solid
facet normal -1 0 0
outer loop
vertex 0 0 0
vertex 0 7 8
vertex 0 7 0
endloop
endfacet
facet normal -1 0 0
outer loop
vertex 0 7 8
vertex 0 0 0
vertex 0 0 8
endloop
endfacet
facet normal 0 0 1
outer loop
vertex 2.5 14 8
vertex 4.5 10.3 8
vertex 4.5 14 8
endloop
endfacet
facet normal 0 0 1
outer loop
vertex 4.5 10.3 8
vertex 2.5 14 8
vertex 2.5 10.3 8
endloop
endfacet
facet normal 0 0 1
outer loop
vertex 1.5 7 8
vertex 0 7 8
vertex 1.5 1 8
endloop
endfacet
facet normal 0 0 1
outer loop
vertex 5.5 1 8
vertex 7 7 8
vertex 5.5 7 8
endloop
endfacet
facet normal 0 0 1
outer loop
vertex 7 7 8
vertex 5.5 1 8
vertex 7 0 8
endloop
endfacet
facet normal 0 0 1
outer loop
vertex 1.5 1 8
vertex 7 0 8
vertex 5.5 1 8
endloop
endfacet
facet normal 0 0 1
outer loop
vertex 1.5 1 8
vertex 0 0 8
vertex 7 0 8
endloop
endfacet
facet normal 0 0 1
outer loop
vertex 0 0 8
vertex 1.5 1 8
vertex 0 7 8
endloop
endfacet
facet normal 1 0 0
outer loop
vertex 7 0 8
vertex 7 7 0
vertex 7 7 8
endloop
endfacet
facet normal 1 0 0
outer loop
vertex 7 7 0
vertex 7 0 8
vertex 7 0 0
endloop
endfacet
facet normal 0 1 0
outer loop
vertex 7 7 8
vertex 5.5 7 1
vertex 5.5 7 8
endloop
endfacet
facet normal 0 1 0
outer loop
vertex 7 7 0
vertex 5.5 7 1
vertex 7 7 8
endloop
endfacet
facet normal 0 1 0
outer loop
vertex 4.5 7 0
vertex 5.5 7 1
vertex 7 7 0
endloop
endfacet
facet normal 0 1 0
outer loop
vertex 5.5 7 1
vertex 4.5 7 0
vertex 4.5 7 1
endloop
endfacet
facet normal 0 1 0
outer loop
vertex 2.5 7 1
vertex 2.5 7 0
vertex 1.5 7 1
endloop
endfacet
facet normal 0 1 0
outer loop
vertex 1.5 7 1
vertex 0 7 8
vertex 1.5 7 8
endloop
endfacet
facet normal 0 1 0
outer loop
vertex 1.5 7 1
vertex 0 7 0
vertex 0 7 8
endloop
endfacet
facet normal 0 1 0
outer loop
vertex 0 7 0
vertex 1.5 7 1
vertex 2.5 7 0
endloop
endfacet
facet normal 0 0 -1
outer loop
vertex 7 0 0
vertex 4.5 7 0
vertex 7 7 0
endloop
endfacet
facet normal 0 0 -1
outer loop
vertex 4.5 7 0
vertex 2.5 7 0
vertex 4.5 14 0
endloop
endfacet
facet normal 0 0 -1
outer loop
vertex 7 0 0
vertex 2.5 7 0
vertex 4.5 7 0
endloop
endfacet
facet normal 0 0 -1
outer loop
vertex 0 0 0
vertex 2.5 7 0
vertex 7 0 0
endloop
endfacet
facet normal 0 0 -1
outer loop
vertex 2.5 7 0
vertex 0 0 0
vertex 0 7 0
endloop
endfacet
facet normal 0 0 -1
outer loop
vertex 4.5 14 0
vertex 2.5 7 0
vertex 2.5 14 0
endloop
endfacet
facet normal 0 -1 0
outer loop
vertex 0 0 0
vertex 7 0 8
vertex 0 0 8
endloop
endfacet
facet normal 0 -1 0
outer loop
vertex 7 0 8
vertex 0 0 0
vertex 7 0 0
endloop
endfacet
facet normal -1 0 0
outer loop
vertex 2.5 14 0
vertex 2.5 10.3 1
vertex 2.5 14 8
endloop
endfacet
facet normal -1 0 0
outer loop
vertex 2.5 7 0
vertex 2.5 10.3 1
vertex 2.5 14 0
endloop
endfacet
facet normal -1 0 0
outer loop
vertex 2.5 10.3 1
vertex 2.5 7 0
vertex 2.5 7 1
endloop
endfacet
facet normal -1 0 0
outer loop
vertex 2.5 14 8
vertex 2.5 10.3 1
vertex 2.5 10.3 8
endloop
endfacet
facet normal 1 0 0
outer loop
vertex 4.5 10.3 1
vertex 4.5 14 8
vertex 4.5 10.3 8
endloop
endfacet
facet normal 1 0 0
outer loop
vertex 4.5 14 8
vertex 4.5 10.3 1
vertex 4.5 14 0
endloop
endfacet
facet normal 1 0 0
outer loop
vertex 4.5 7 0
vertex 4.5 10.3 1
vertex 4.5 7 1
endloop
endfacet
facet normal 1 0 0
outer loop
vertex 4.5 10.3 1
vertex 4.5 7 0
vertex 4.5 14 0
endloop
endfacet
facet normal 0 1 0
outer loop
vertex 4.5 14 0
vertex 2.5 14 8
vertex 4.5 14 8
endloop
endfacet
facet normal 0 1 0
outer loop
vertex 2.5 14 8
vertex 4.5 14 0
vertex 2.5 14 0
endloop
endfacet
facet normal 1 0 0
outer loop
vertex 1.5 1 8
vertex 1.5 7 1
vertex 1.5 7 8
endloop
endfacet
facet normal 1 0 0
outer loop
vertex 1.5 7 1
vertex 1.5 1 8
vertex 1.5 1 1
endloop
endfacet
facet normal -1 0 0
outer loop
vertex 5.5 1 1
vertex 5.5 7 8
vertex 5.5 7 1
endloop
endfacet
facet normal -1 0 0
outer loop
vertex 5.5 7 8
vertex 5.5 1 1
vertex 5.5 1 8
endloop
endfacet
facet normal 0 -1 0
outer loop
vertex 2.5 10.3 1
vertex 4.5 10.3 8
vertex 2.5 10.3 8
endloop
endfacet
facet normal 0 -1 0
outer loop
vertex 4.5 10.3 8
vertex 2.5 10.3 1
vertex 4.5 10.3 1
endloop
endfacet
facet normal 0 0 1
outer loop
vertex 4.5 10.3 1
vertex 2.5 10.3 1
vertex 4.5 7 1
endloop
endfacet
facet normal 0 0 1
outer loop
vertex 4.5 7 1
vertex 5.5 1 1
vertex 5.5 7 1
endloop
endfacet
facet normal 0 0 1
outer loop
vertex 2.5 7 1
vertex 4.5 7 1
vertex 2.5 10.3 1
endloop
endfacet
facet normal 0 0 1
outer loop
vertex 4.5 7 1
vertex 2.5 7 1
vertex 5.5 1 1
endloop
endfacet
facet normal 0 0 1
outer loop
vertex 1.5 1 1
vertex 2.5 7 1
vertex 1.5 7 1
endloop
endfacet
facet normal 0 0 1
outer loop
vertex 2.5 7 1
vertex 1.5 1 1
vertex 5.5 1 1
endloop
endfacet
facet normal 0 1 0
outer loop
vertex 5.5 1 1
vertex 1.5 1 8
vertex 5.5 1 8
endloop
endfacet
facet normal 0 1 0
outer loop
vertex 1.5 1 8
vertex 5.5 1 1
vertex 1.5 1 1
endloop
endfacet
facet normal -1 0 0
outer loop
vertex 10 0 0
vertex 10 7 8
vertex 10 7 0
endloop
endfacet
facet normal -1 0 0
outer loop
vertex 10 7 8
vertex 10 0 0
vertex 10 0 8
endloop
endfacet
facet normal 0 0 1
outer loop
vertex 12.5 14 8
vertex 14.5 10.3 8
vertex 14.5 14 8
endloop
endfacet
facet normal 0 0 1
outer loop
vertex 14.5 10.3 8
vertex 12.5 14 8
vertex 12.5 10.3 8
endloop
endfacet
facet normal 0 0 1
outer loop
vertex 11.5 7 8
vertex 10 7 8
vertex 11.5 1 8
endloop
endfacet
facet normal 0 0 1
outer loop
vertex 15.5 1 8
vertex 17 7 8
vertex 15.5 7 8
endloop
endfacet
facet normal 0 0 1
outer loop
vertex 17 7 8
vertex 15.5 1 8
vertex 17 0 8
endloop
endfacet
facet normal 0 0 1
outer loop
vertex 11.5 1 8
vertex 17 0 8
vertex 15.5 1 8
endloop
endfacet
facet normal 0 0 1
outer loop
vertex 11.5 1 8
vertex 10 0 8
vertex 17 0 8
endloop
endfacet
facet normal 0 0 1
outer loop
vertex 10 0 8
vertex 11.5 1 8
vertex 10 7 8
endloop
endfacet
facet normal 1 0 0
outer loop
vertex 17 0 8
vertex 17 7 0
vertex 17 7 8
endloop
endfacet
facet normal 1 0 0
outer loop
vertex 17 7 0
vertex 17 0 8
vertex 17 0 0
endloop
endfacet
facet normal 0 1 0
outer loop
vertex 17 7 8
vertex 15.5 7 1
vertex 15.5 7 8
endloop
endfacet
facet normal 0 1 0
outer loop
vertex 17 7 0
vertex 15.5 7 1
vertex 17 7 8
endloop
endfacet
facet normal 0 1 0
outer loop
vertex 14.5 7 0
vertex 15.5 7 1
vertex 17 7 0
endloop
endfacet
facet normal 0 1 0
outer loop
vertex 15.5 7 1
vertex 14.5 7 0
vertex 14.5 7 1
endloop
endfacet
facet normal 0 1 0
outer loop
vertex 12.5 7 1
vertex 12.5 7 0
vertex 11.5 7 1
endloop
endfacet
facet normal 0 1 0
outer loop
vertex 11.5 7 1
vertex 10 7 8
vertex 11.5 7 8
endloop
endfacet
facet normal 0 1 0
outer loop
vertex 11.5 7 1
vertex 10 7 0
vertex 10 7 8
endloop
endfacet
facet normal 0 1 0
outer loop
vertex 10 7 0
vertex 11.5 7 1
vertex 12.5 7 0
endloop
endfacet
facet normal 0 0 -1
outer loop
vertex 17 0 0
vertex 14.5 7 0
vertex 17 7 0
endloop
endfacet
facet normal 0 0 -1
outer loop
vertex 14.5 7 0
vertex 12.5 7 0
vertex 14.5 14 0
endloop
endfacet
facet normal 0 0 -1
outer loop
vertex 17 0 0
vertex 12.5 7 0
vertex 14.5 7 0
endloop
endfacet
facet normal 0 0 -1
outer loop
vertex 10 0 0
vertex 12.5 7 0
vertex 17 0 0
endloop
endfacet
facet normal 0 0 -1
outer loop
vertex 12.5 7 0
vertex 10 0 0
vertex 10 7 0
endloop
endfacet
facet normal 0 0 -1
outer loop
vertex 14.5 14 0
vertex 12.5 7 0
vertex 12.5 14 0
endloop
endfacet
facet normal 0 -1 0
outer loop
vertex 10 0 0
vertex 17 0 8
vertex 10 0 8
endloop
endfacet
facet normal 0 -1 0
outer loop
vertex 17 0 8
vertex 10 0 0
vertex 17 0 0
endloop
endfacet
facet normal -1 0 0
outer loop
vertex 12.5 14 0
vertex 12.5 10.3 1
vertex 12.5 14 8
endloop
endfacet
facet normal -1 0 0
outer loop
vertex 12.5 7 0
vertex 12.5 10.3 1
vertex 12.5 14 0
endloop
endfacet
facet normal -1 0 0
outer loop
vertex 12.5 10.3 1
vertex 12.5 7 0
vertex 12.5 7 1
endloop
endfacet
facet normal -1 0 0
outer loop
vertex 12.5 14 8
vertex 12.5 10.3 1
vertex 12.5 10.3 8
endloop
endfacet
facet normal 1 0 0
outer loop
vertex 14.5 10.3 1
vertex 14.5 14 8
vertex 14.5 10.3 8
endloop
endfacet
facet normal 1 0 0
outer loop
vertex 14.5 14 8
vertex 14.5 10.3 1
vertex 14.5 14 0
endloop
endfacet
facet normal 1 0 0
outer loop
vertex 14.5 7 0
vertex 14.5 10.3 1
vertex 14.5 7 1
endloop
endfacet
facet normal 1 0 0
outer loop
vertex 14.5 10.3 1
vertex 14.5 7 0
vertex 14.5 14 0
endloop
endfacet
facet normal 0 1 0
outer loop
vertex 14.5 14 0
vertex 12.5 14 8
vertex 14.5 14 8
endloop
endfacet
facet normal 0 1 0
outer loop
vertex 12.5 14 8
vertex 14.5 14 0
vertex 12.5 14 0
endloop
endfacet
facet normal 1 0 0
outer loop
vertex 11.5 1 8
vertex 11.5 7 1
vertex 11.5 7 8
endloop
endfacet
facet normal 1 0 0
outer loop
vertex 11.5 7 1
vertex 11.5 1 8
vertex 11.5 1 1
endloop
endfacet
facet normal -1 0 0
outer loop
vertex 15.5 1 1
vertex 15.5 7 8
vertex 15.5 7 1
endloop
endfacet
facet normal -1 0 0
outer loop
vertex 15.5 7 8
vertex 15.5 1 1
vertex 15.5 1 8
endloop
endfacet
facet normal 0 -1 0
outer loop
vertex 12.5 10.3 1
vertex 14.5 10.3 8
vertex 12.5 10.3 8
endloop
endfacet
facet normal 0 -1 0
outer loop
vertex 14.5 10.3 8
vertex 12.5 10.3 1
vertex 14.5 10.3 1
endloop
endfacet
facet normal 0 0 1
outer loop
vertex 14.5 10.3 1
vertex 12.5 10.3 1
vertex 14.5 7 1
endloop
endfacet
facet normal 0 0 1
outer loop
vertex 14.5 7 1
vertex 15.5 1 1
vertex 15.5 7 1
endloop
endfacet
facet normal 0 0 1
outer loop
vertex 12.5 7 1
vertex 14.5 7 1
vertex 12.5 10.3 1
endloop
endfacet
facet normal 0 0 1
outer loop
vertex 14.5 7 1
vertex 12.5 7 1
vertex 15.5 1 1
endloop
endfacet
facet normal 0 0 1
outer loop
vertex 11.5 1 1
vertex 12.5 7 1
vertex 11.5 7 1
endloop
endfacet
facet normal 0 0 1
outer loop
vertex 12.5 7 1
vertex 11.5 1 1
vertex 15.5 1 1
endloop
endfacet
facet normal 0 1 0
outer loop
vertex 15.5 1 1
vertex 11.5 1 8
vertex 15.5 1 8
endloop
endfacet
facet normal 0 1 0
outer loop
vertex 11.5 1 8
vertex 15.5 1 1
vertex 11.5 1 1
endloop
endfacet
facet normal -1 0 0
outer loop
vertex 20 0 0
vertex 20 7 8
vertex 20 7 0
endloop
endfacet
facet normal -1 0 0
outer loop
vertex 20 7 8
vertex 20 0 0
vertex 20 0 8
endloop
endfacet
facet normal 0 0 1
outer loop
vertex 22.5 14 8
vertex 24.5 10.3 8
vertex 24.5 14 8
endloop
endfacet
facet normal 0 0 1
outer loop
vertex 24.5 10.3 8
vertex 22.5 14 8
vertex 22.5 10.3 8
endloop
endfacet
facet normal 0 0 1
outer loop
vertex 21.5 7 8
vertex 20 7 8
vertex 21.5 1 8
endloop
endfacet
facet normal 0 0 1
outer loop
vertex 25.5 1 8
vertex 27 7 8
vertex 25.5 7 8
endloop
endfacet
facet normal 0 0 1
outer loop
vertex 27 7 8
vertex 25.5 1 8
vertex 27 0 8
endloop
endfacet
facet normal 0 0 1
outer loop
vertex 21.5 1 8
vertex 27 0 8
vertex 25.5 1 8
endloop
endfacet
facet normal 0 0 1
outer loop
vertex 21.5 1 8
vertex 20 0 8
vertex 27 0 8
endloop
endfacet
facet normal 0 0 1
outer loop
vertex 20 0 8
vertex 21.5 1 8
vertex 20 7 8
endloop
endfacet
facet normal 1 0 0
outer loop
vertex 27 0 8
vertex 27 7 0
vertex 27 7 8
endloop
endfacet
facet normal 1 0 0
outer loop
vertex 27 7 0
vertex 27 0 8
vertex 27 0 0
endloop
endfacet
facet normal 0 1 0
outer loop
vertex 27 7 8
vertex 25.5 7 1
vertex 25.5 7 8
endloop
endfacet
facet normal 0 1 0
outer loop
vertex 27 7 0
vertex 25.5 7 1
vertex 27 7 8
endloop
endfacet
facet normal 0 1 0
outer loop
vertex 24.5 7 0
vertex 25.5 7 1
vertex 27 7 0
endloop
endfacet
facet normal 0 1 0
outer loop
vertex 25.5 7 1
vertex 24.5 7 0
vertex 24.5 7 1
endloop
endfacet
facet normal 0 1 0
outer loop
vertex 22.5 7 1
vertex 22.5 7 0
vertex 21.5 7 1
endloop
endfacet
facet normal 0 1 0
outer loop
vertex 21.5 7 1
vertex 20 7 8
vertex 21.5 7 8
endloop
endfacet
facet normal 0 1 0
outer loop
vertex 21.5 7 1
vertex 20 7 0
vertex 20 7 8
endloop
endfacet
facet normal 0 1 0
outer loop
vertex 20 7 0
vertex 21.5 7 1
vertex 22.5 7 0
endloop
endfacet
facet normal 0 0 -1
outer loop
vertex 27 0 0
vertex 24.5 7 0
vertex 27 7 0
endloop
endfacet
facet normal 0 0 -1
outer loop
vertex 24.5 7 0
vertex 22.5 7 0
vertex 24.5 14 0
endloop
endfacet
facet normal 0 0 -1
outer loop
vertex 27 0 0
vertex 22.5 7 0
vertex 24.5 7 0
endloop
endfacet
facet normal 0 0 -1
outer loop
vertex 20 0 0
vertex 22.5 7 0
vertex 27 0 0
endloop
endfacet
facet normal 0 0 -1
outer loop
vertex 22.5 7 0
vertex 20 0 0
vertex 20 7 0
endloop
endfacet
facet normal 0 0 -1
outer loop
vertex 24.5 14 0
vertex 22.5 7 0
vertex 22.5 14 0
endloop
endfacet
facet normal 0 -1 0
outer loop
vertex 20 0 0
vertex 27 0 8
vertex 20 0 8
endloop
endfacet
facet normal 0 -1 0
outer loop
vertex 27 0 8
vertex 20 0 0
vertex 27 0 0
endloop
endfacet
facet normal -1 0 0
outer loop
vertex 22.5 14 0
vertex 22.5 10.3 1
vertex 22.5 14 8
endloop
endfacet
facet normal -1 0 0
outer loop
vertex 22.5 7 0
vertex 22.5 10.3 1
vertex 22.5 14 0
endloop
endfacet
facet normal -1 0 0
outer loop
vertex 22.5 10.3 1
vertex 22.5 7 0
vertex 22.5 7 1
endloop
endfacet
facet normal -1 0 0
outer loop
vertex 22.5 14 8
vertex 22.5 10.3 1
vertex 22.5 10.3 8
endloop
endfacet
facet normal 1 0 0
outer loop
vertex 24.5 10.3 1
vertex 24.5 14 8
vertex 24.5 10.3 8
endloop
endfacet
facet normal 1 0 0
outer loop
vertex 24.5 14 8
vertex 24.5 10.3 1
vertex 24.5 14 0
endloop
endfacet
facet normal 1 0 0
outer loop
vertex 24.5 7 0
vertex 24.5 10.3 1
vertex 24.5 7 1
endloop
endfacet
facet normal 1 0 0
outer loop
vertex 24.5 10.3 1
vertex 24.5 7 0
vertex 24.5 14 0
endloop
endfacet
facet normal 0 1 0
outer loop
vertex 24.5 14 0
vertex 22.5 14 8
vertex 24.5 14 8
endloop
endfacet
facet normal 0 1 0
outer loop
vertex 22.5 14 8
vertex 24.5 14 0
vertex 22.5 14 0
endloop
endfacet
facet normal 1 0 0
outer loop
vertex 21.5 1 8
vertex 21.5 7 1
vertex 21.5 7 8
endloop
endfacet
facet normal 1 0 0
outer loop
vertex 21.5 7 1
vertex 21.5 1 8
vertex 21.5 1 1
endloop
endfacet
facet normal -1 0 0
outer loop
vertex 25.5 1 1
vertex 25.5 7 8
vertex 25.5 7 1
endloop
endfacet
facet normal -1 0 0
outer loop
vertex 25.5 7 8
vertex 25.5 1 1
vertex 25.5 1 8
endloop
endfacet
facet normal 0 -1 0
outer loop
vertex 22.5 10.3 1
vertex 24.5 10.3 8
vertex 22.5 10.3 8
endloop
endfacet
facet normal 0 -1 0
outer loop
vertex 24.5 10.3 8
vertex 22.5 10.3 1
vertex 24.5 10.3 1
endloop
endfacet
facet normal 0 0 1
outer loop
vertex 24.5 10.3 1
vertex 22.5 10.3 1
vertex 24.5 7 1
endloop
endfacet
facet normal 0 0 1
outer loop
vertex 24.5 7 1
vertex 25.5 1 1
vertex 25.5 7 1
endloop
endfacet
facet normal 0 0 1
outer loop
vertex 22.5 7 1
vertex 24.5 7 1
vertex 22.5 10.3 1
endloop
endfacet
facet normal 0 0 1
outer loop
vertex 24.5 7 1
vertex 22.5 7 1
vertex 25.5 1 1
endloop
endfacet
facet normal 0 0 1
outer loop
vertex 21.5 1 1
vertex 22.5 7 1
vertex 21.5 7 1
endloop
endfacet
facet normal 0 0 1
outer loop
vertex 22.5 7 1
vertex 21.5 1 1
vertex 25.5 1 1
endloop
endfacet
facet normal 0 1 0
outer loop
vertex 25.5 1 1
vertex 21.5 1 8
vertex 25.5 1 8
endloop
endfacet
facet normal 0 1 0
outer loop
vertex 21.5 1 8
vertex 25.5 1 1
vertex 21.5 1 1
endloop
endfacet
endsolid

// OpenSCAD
module OpenSCAD_Model() {
	polyhedron(
		points=[
			[0.0, 0.0, 0.0],
			[0.0, 7.0, 8.0],
			[0.0, 7.0, 0.0],
			[0.0, 0.0, 8.0],
			[2.5, 14.0, 8.0],
			[4.5, 10.3, 8.0],
			[4.5, 14.0, 8.0],
			[2.5, 10.3, 8.0],
			[1.5, 7.0, 8.0],
			[1.5, 1.0, 8.0],
			[5.5, 1.0, 8.0],
			[7.0, 7.0, 8.0],
			[5.5, 7.0, 8.0],
			[7.0, 0.0, 8.0],
			[7.0, 7.0, 0.0],
			[7.0, 0.0, 0.0],
			[5.5, 7.0, 1.0],
			[4.5, 7.0, 0.0],
			[4.5, 7.0, 1.0],
			[2.5, 7.0, 1.0],
			[2.5, 7.0, 0.0],
			[1.5, 7.0, 1.0],
			[4.5, 14.0, 0.0],
			[2.5, 14.0, 0.0],
			[2.5, 10.3, 1.0],
			[4.5, 10.3, 1.0],
			[1.5, 1.0, 1.0],
			[5.5, 1.0, 1.0],
			[10.0, 0.0, 0.0],
			[10.0, 7.0, 8.0],
			[10.0, 7.0, 0.0],
			[10.0, 0.0, 8.0],
			[12.5, 14.0, 8.0],
			[14.5, 10.3, 8.0],
			[14.5, 14.0, 8.0],
			[12.5, 10.3, 8.0],
			[11.5, 7.0, 8.0],
			[11.5, 1.0, 8.0],
			[15.5, 1.0, 8.0],
			[17.0, 7.0, 8.0],
			[15.5, 7.0, 8.0],
			[17.0, 0.0, 8.0],
			[17.0, 7.0, 0.0],
			[17.0, 0.0, 0.0],
			[15.5, 7.0, 1.0],
			[14.5, 7.0, 0.0],
			[14.5, 7.0, 1.0],
			[12.5, 7.0, 1.0],
			[12.5, 7.0, 0.0],
			[11.5, 7.0, 1.0],
			[14.5, 14.0, 0.0],
			[12.5, 14.0, 0.0],
			[12.5, 10.3, 1.0],
			[14.5, 10.3, 1.0],
			[11.5, 1.0, 1.0],
			[15.5, 1.0, 1.0],
			[20.0, 0.0, 0.0],
			[20.0, 7.0, 8.0],
			[20.0, 7.0, 0.0],
			[20.0, 0.0, 8.0],
			[22.5, 14.0, 8.0],
			[24.5, 10.3, 8.0],
			[24.5, 14.0, 8.0],
			[22.5, 10.3, 8.0],
			[21.5, 7.0, 8.0],
			[21.5, 1.0, 8.0],
			[25.5, 1.0, 8.0],
			[27.0, 7.0, 8.0],
			[25.5, 7.0, 8.0],
			[27.0, 0.0, 8.0],
			[27.0, 7.0, 0.0],
			[27.0, 0.0, 0.0],
			[25.5, 7.0, 1.0],
			[24.5, 7.0, 0.0],
			[24.5, 7.0, 1.0],
			[22.5, 7.0, 1.0],
			[22.5, 7.0, 0.0],
			[21.5, 7.0, 1.0],
			[24.5, 14.0, 0.0],
			[22.5, 14.0, 0.0],
			[22.5, 10.3, 1.0],
			[24.5, 10.3, 1.0],
			[21.5, 1.0, 1.0],
			[25.5, 1.0, 1.0]
		],
		faces=[
			[0, 2, 1],
			[1, 3, 0],
			[4, 6, 5],
			[5, 7, 4],
			[8, 9, 1],
			[10, 12, 11],
			[11, 13, 10],
			[9, 10, 13],
			[9, 13, 3],
			[3, 1, 9],
			[13, 11, 14],
			[14, 15, 13],
			[11, 12, 16],
			[14, 11, 16],
			[17, 14, 16],
			[16, 18, 17],
			[19, 21, 20],
			[21, 8, 1],
			[21, 1, 2],
			[2, 20, 21],
			[15, 14, 17],
			[17, 22, 20],
			[15, 17, 20],
			[0, 15, 20],
			[20, 2, 0],
			[22, 23, 20],
			[0, 3, 13],
			[13, 15, 0],
			[23, 4, 24],
			[20, 23, 24],
			[24, 19, 20],
			[4, 7, 24],
			[25, 5, 6],
			[6, 22, 25],
			[17, 18, 25],
			[25, 22, 17],
			[22, 6, 4],
			[4, 23, 22],
			[9, 8, 21],
			[21, 26, 9],
			[27, 16, 12],
			[12, 10, 27],
			[24, 7, 5],
			[5, 25, 24],
			[25, 18, 24],
			[18, 16, 27],
			[19, 24, 18],
			[18, 27, 19],
			[26, 21, 19],
			[19, 27, 26],
			[27, 10, 9],
			[9, 26, 27],
			[28, 30, 29],
			[29, 31, 28],
			[32, 34, 33],
			[33, 35, 32],
			[36, 37, 29],
			[38, 40, 39],
			[39, 41, 38],
			[37, 38, 41],
			[37, 41, 31],
			[31, 29, 37],
			[41, 39, 42],
			[42, 43, 41],
			[39, 40, 44],
			[42, 39, 44],
			[45, 42, 44],
			[44, 46, 45],
			[47, 49, 48],
			[49, 36, 29],
			[49, 29, 30],
			[30, 48, 49],
			[43, 42, 45],
			[45, 50, 48],
			[43, 45, 48],
			[28, 43, 48],
			[48, 30, 28],
			[50, 51, 48],
			[28, 31, 41],
			[41, 43, 28],
			[51, 32, 52],
			[48, 51, 52],
			[52, 47, 48],
			[32, 35, 52],
			[53, 33, 34],
			[34, 50, 53],
			[45, 46, 53],
			[53, 50, 45],
			[50, 34, 32],
			[32, 51, 50],
			[37, 36, 49],
			[49, 54, 37],
			[55, 44, 40],
			[40, 38, 55],
			[52, 35, 33],
			[33, 53, 52],
			[53, 46, 52],
			[46, 44, 55],
			[47, 52, 46],
			[46, 55, 47],
			[54, 49, 47],
			[47, 55, 54],
			[55, 38, 37],
			[37, 54, 55],
			[56, 58, 57],
			[57, 59, 56],
			[60, 62, 61],
			[61, 63, 60],
			[64, 65, 57],
			[66, 68, 67],
			[67, 69, 66],
			[65, 66, 69],
			[65, 69, 59],
			[59, 57, 65],
			[69, 67, 70],
			[70, 71, 69],
			[67, 68, 72],
			[70, 67, 72],
			[73, 70, 72],
			[72, 74, 73],
			[75, 77, 76],
			[77, 64, 57],
			[77, 57, 58],
			[58, 76, 77],
			[71, 70, 73],
			[73, 78, 76],
			[71, 73, 76],
			[56, 71, 76],
			[76, 58, 56],
			[78, 79, 76],
			[56, 59, 69],
			[69, 71, 56],
			[79, 60, 80],
			[76, 79, 80],
			[80, 75, 76],
			[60, 63, 80],
			[81, 61, 62],
			[62, 78, 81],
			[73, 74, 81],
			[81, 78, 73],
			[78, 62, 60],
			[60, 79, 78],
			[65, 64, 77],
			[77, 82, 65],
			[83, 72, 68],
			[68, 66, 83],
			[80, 63, 61],
			[61, 81, 80],
			[81, 74, 80],
			[74, 72, 83],
			[75, 80, 74],
			[74, 83, 75],
			[82, 77, 75],
			[75, 83, 82],
			[83, 66, 65],
			[65, 82, 83]
		]
	);
}


OpenSCAD_Model();
